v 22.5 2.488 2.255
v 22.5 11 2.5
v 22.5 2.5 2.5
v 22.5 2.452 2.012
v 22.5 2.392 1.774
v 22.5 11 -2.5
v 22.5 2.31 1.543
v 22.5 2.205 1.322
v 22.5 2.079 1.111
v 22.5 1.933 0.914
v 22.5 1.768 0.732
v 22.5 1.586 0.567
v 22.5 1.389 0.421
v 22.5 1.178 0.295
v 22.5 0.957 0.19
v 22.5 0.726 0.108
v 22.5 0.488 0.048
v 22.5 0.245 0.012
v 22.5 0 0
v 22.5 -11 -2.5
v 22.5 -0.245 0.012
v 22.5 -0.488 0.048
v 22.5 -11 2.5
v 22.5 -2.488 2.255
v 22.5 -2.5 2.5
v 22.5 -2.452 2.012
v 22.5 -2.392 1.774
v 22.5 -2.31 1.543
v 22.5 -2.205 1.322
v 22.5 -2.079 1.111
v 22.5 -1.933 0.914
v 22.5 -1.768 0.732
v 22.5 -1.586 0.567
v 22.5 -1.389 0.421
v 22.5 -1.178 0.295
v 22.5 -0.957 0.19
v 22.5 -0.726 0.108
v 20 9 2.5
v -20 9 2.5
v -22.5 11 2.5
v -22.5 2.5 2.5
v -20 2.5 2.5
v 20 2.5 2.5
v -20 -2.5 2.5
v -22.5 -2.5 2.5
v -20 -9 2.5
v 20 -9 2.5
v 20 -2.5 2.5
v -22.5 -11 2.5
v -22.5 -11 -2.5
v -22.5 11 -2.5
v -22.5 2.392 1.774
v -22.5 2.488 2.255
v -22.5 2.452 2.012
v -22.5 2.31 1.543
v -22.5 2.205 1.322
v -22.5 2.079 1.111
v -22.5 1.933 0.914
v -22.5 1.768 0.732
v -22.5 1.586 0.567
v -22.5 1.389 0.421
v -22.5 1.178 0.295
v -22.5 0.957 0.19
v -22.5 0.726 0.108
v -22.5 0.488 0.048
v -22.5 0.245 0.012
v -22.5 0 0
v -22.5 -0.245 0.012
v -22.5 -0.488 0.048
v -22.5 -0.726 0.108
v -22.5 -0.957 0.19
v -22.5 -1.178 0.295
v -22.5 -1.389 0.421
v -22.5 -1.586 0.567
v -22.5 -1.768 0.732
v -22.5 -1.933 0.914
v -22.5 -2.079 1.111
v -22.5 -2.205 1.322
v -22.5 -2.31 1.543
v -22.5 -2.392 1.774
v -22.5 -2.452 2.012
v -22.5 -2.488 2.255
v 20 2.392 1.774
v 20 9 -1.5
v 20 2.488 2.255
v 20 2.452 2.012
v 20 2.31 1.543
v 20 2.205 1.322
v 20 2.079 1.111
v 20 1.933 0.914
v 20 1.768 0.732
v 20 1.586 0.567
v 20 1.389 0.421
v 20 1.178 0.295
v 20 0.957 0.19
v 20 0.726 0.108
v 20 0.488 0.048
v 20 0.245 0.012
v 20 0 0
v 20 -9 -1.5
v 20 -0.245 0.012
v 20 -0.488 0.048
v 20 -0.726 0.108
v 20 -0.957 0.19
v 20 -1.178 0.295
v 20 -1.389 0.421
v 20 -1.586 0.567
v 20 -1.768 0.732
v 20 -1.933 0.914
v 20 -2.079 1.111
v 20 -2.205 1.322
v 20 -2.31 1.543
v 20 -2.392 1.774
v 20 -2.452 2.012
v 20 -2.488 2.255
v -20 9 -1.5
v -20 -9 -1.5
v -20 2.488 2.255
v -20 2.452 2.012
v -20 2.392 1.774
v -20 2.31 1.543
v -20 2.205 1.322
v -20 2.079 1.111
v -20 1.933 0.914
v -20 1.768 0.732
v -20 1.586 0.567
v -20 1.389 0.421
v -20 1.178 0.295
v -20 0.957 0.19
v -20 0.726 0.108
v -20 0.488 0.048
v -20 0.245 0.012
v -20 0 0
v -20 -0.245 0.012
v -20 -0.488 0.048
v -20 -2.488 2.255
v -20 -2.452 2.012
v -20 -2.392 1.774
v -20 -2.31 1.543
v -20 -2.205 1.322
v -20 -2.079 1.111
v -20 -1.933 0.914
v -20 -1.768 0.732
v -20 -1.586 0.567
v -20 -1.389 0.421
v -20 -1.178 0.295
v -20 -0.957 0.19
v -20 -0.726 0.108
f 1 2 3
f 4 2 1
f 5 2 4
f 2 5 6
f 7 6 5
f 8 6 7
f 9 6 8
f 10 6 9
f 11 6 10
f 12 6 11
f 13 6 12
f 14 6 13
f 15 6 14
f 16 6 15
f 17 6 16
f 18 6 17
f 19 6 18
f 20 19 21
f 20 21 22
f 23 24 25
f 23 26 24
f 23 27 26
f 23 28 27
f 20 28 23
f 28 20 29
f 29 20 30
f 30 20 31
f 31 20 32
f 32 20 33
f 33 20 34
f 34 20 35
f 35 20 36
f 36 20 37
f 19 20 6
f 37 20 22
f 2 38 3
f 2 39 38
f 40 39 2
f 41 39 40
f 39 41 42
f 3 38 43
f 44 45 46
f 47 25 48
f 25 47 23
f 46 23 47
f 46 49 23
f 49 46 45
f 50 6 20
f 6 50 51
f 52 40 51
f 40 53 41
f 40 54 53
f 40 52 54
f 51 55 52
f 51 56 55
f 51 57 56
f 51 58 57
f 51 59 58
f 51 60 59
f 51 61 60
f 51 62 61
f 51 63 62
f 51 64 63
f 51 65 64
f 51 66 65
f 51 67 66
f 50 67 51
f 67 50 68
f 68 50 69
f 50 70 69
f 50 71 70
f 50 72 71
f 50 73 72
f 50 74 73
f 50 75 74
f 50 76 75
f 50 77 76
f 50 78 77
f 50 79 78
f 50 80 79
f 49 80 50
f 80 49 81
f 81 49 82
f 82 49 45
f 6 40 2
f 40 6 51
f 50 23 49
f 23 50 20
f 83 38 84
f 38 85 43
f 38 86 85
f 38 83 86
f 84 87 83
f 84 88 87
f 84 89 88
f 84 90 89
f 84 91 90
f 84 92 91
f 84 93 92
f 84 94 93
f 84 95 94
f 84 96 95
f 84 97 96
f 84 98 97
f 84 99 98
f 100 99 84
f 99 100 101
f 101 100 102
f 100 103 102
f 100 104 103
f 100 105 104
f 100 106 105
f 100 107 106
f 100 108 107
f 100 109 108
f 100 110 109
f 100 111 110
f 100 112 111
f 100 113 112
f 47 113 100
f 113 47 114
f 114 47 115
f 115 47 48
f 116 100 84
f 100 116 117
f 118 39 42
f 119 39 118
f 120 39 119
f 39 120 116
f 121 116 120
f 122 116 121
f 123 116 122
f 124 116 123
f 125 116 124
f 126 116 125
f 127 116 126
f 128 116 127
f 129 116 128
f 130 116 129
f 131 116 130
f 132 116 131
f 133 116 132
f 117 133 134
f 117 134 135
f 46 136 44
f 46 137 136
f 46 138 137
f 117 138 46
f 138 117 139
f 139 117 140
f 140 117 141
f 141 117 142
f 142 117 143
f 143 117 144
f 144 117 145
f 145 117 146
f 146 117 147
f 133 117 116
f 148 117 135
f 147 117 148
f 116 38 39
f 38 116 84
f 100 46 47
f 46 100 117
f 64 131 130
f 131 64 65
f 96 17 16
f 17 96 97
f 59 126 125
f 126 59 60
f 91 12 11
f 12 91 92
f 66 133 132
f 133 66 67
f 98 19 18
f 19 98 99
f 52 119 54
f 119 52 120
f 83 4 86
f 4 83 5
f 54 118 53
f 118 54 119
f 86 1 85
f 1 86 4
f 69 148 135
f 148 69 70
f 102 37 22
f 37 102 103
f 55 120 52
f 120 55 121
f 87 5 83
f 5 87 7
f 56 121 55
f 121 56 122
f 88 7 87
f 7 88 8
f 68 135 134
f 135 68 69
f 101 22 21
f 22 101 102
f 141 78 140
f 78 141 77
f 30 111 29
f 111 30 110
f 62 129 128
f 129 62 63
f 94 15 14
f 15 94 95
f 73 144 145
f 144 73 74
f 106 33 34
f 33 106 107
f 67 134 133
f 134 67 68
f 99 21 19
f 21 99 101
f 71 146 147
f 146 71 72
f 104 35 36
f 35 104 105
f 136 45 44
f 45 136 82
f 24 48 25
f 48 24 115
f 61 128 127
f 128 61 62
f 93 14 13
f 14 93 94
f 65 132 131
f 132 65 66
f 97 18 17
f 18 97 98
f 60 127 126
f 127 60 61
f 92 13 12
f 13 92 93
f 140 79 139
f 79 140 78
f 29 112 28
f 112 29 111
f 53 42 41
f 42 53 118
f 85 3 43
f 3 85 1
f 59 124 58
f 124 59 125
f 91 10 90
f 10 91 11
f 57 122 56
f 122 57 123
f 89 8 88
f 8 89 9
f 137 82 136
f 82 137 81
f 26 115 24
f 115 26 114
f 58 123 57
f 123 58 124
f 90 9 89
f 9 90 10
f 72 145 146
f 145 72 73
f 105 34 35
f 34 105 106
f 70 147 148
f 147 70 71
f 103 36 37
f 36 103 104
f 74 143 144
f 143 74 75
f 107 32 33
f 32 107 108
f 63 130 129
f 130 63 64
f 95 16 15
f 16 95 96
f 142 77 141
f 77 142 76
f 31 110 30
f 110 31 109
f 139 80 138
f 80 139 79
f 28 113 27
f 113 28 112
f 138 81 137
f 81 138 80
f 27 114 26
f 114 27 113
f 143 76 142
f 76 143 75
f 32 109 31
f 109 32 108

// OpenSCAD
difference(){
cube([45,22,5],center=true);
translate([0,0,1])
cube([40,18,5],center=true);
translate([0,0,5/2])
rotate([0,90,0])
cylinder(d=5,h=50,center=true,$fn=64);
}
